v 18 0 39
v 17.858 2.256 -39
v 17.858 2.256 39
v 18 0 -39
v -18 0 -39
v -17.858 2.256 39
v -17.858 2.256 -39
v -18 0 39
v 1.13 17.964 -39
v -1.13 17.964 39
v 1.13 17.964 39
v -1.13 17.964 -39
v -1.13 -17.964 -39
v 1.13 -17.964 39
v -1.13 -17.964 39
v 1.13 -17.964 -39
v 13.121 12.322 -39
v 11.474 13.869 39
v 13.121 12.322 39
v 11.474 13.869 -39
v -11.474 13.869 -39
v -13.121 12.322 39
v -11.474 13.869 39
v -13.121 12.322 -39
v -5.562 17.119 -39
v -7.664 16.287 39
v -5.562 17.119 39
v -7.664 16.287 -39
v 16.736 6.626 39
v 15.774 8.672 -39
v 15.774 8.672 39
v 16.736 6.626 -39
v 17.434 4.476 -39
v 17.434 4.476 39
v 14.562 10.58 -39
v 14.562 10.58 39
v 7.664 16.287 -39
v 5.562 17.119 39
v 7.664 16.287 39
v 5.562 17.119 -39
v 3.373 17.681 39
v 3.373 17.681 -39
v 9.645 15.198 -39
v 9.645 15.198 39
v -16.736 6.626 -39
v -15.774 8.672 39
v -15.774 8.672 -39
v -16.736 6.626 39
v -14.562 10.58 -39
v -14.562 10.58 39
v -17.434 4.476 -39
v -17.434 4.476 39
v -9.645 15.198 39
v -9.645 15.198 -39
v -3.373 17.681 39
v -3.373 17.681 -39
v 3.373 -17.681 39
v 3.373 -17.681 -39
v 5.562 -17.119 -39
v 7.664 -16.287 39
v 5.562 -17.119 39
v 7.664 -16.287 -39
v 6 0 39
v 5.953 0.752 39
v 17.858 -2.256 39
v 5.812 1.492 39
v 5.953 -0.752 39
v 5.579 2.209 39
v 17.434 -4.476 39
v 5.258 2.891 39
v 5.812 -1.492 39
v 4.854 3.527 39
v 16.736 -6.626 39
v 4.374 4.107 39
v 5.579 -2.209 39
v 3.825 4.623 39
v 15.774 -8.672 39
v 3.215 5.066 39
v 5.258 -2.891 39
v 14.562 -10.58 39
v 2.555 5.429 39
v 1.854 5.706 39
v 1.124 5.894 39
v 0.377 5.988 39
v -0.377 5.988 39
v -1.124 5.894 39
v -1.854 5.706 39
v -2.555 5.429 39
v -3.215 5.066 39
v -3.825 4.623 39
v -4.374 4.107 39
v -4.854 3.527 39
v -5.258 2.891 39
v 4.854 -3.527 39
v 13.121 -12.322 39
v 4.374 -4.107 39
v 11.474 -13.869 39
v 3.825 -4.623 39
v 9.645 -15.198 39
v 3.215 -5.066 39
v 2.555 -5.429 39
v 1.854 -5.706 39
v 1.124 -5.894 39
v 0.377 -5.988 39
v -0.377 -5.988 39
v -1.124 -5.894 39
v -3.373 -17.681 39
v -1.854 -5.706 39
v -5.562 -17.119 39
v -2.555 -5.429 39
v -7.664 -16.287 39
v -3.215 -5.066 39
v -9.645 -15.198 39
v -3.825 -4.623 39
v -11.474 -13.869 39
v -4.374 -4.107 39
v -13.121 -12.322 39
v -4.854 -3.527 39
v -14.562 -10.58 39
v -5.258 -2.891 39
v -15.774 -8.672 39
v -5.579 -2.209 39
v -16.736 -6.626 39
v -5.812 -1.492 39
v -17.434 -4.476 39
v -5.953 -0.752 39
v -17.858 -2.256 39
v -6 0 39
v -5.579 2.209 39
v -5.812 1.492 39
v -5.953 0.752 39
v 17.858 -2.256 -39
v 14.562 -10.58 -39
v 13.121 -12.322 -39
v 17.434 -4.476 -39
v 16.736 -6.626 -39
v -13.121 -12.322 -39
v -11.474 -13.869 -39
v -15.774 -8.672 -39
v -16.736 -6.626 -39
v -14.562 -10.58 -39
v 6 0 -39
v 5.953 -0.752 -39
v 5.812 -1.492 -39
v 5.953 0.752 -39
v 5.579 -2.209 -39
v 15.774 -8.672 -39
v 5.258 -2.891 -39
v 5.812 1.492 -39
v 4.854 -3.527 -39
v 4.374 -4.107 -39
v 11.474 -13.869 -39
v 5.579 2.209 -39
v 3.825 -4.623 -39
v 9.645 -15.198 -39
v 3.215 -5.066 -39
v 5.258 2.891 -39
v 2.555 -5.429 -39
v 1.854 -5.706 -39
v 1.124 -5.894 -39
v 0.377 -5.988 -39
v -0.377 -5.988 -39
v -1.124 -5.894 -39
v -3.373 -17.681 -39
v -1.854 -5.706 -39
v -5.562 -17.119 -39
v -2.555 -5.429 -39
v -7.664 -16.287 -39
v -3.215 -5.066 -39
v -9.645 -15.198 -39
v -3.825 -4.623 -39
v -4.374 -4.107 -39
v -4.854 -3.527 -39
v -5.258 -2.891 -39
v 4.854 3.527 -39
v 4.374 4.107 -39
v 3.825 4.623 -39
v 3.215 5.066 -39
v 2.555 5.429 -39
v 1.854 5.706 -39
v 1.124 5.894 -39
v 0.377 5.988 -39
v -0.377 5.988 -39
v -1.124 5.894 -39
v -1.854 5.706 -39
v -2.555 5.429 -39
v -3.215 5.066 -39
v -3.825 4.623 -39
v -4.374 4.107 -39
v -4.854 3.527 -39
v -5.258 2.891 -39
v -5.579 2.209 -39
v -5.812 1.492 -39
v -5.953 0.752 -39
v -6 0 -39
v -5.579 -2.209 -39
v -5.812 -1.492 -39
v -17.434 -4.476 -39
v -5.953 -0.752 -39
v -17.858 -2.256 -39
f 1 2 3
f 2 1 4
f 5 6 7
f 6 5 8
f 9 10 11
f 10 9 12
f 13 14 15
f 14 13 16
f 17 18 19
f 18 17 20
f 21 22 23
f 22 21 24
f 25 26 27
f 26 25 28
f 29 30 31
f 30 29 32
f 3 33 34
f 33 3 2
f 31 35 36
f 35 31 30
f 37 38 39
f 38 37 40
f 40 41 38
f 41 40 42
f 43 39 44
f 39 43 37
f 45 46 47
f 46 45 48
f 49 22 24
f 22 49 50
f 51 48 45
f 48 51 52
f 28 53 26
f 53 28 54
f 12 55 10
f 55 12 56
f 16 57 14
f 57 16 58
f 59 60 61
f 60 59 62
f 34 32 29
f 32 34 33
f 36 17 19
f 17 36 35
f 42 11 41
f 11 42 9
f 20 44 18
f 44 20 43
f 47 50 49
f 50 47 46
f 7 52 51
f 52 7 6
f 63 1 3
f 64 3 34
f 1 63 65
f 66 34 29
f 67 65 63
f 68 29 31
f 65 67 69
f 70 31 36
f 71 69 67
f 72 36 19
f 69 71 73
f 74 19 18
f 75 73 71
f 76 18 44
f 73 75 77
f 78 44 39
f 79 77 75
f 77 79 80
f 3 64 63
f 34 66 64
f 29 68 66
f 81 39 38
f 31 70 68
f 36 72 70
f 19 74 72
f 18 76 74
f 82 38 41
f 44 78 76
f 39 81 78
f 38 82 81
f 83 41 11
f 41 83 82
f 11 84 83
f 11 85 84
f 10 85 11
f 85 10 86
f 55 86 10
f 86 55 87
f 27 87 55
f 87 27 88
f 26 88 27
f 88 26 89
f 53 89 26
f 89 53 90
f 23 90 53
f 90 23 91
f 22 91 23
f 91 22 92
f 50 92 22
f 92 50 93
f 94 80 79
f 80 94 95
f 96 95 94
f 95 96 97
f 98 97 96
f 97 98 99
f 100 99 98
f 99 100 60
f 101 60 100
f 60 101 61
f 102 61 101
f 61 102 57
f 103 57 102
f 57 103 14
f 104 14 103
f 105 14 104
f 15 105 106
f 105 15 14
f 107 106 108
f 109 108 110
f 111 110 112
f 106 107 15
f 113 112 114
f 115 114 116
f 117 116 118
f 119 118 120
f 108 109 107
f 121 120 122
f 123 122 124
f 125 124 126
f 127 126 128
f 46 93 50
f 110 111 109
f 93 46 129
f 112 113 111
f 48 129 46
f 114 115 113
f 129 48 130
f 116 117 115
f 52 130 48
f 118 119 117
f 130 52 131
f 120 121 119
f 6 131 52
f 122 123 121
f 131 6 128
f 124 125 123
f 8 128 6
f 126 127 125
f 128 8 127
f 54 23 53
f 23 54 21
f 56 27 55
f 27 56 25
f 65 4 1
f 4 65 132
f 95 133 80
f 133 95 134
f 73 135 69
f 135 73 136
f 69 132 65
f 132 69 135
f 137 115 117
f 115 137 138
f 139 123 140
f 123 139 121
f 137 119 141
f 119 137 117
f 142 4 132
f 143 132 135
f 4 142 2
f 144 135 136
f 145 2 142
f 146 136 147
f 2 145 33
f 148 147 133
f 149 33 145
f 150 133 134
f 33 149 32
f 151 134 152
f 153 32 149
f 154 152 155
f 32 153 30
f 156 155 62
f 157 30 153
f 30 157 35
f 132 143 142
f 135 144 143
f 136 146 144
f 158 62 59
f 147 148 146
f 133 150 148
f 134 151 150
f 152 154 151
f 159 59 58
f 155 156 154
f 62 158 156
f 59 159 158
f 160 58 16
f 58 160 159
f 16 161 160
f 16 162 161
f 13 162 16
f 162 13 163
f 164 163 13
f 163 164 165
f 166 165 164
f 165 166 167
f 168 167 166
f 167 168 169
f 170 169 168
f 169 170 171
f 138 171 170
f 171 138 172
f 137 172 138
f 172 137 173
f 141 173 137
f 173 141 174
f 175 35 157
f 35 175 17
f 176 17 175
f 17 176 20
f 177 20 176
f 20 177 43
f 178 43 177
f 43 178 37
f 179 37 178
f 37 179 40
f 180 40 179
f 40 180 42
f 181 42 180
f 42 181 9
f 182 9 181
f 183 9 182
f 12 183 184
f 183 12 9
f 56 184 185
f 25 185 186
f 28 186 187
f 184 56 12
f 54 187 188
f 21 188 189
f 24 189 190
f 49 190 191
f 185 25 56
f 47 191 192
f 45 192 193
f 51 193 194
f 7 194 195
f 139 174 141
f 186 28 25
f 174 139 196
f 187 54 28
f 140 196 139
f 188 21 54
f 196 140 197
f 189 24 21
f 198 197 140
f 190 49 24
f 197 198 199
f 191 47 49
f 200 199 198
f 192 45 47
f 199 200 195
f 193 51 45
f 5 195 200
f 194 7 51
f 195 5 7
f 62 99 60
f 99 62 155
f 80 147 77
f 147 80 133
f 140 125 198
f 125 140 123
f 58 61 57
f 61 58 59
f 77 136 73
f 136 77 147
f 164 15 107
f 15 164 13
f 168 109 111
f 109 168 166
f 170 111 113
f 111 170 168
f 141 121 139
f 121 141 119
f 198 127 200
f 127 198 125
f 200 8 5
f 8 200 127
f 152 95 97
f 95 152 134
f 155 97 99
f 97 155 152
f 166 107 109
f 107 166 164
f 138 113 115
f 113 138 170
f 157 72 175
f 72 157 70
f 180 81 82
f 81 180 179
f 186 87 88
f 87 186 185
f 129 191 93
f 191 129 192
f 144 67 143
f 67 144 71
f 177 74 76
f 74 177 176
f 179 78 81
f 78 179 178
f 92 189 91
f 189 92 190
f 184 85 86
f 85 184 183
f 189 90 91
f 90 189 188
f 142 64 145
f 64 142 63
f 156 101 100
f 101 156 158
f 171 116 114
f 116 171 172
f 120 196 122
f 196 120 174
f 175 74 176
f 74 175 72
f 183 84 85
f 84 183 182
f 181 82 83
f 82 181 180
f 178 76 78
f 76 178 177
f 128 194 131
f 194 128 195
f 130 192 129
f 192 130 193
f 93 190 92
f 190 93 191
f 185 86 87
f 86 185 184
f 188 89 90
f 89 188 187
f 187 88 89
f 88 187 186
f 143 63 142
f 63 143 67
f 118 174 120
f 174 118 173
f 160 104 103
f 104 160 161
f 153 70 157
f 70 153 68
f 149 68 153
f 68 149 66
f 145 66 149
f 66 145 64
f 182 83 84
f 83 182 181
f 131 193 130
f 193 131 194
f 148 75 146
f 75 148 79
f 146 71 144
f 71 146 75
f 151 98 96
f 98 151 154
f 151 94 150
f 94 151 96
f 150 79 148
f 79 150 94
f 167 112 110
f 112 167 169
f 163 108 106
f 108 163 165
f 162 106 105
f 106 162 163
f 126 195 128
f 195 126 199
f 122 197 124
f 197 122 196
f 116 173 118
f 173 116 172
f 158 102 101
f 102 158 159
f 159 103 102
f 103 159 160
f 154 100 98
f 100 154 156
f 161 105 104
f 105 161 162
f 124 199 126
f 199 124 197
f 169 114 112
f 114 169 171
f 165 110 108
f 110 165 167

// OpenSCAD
$fn = 50;


difference() {
	union() {
		translate(v = [0, 0, -39.0000000000]) {
			cylinder(h = 78, r = 18.0000000000);
		}
	}
	union() {
		translate(v = [0, 0, -100.0000000000]) {
			cylinder(h = 200, r = 6);
		}
	}
}
